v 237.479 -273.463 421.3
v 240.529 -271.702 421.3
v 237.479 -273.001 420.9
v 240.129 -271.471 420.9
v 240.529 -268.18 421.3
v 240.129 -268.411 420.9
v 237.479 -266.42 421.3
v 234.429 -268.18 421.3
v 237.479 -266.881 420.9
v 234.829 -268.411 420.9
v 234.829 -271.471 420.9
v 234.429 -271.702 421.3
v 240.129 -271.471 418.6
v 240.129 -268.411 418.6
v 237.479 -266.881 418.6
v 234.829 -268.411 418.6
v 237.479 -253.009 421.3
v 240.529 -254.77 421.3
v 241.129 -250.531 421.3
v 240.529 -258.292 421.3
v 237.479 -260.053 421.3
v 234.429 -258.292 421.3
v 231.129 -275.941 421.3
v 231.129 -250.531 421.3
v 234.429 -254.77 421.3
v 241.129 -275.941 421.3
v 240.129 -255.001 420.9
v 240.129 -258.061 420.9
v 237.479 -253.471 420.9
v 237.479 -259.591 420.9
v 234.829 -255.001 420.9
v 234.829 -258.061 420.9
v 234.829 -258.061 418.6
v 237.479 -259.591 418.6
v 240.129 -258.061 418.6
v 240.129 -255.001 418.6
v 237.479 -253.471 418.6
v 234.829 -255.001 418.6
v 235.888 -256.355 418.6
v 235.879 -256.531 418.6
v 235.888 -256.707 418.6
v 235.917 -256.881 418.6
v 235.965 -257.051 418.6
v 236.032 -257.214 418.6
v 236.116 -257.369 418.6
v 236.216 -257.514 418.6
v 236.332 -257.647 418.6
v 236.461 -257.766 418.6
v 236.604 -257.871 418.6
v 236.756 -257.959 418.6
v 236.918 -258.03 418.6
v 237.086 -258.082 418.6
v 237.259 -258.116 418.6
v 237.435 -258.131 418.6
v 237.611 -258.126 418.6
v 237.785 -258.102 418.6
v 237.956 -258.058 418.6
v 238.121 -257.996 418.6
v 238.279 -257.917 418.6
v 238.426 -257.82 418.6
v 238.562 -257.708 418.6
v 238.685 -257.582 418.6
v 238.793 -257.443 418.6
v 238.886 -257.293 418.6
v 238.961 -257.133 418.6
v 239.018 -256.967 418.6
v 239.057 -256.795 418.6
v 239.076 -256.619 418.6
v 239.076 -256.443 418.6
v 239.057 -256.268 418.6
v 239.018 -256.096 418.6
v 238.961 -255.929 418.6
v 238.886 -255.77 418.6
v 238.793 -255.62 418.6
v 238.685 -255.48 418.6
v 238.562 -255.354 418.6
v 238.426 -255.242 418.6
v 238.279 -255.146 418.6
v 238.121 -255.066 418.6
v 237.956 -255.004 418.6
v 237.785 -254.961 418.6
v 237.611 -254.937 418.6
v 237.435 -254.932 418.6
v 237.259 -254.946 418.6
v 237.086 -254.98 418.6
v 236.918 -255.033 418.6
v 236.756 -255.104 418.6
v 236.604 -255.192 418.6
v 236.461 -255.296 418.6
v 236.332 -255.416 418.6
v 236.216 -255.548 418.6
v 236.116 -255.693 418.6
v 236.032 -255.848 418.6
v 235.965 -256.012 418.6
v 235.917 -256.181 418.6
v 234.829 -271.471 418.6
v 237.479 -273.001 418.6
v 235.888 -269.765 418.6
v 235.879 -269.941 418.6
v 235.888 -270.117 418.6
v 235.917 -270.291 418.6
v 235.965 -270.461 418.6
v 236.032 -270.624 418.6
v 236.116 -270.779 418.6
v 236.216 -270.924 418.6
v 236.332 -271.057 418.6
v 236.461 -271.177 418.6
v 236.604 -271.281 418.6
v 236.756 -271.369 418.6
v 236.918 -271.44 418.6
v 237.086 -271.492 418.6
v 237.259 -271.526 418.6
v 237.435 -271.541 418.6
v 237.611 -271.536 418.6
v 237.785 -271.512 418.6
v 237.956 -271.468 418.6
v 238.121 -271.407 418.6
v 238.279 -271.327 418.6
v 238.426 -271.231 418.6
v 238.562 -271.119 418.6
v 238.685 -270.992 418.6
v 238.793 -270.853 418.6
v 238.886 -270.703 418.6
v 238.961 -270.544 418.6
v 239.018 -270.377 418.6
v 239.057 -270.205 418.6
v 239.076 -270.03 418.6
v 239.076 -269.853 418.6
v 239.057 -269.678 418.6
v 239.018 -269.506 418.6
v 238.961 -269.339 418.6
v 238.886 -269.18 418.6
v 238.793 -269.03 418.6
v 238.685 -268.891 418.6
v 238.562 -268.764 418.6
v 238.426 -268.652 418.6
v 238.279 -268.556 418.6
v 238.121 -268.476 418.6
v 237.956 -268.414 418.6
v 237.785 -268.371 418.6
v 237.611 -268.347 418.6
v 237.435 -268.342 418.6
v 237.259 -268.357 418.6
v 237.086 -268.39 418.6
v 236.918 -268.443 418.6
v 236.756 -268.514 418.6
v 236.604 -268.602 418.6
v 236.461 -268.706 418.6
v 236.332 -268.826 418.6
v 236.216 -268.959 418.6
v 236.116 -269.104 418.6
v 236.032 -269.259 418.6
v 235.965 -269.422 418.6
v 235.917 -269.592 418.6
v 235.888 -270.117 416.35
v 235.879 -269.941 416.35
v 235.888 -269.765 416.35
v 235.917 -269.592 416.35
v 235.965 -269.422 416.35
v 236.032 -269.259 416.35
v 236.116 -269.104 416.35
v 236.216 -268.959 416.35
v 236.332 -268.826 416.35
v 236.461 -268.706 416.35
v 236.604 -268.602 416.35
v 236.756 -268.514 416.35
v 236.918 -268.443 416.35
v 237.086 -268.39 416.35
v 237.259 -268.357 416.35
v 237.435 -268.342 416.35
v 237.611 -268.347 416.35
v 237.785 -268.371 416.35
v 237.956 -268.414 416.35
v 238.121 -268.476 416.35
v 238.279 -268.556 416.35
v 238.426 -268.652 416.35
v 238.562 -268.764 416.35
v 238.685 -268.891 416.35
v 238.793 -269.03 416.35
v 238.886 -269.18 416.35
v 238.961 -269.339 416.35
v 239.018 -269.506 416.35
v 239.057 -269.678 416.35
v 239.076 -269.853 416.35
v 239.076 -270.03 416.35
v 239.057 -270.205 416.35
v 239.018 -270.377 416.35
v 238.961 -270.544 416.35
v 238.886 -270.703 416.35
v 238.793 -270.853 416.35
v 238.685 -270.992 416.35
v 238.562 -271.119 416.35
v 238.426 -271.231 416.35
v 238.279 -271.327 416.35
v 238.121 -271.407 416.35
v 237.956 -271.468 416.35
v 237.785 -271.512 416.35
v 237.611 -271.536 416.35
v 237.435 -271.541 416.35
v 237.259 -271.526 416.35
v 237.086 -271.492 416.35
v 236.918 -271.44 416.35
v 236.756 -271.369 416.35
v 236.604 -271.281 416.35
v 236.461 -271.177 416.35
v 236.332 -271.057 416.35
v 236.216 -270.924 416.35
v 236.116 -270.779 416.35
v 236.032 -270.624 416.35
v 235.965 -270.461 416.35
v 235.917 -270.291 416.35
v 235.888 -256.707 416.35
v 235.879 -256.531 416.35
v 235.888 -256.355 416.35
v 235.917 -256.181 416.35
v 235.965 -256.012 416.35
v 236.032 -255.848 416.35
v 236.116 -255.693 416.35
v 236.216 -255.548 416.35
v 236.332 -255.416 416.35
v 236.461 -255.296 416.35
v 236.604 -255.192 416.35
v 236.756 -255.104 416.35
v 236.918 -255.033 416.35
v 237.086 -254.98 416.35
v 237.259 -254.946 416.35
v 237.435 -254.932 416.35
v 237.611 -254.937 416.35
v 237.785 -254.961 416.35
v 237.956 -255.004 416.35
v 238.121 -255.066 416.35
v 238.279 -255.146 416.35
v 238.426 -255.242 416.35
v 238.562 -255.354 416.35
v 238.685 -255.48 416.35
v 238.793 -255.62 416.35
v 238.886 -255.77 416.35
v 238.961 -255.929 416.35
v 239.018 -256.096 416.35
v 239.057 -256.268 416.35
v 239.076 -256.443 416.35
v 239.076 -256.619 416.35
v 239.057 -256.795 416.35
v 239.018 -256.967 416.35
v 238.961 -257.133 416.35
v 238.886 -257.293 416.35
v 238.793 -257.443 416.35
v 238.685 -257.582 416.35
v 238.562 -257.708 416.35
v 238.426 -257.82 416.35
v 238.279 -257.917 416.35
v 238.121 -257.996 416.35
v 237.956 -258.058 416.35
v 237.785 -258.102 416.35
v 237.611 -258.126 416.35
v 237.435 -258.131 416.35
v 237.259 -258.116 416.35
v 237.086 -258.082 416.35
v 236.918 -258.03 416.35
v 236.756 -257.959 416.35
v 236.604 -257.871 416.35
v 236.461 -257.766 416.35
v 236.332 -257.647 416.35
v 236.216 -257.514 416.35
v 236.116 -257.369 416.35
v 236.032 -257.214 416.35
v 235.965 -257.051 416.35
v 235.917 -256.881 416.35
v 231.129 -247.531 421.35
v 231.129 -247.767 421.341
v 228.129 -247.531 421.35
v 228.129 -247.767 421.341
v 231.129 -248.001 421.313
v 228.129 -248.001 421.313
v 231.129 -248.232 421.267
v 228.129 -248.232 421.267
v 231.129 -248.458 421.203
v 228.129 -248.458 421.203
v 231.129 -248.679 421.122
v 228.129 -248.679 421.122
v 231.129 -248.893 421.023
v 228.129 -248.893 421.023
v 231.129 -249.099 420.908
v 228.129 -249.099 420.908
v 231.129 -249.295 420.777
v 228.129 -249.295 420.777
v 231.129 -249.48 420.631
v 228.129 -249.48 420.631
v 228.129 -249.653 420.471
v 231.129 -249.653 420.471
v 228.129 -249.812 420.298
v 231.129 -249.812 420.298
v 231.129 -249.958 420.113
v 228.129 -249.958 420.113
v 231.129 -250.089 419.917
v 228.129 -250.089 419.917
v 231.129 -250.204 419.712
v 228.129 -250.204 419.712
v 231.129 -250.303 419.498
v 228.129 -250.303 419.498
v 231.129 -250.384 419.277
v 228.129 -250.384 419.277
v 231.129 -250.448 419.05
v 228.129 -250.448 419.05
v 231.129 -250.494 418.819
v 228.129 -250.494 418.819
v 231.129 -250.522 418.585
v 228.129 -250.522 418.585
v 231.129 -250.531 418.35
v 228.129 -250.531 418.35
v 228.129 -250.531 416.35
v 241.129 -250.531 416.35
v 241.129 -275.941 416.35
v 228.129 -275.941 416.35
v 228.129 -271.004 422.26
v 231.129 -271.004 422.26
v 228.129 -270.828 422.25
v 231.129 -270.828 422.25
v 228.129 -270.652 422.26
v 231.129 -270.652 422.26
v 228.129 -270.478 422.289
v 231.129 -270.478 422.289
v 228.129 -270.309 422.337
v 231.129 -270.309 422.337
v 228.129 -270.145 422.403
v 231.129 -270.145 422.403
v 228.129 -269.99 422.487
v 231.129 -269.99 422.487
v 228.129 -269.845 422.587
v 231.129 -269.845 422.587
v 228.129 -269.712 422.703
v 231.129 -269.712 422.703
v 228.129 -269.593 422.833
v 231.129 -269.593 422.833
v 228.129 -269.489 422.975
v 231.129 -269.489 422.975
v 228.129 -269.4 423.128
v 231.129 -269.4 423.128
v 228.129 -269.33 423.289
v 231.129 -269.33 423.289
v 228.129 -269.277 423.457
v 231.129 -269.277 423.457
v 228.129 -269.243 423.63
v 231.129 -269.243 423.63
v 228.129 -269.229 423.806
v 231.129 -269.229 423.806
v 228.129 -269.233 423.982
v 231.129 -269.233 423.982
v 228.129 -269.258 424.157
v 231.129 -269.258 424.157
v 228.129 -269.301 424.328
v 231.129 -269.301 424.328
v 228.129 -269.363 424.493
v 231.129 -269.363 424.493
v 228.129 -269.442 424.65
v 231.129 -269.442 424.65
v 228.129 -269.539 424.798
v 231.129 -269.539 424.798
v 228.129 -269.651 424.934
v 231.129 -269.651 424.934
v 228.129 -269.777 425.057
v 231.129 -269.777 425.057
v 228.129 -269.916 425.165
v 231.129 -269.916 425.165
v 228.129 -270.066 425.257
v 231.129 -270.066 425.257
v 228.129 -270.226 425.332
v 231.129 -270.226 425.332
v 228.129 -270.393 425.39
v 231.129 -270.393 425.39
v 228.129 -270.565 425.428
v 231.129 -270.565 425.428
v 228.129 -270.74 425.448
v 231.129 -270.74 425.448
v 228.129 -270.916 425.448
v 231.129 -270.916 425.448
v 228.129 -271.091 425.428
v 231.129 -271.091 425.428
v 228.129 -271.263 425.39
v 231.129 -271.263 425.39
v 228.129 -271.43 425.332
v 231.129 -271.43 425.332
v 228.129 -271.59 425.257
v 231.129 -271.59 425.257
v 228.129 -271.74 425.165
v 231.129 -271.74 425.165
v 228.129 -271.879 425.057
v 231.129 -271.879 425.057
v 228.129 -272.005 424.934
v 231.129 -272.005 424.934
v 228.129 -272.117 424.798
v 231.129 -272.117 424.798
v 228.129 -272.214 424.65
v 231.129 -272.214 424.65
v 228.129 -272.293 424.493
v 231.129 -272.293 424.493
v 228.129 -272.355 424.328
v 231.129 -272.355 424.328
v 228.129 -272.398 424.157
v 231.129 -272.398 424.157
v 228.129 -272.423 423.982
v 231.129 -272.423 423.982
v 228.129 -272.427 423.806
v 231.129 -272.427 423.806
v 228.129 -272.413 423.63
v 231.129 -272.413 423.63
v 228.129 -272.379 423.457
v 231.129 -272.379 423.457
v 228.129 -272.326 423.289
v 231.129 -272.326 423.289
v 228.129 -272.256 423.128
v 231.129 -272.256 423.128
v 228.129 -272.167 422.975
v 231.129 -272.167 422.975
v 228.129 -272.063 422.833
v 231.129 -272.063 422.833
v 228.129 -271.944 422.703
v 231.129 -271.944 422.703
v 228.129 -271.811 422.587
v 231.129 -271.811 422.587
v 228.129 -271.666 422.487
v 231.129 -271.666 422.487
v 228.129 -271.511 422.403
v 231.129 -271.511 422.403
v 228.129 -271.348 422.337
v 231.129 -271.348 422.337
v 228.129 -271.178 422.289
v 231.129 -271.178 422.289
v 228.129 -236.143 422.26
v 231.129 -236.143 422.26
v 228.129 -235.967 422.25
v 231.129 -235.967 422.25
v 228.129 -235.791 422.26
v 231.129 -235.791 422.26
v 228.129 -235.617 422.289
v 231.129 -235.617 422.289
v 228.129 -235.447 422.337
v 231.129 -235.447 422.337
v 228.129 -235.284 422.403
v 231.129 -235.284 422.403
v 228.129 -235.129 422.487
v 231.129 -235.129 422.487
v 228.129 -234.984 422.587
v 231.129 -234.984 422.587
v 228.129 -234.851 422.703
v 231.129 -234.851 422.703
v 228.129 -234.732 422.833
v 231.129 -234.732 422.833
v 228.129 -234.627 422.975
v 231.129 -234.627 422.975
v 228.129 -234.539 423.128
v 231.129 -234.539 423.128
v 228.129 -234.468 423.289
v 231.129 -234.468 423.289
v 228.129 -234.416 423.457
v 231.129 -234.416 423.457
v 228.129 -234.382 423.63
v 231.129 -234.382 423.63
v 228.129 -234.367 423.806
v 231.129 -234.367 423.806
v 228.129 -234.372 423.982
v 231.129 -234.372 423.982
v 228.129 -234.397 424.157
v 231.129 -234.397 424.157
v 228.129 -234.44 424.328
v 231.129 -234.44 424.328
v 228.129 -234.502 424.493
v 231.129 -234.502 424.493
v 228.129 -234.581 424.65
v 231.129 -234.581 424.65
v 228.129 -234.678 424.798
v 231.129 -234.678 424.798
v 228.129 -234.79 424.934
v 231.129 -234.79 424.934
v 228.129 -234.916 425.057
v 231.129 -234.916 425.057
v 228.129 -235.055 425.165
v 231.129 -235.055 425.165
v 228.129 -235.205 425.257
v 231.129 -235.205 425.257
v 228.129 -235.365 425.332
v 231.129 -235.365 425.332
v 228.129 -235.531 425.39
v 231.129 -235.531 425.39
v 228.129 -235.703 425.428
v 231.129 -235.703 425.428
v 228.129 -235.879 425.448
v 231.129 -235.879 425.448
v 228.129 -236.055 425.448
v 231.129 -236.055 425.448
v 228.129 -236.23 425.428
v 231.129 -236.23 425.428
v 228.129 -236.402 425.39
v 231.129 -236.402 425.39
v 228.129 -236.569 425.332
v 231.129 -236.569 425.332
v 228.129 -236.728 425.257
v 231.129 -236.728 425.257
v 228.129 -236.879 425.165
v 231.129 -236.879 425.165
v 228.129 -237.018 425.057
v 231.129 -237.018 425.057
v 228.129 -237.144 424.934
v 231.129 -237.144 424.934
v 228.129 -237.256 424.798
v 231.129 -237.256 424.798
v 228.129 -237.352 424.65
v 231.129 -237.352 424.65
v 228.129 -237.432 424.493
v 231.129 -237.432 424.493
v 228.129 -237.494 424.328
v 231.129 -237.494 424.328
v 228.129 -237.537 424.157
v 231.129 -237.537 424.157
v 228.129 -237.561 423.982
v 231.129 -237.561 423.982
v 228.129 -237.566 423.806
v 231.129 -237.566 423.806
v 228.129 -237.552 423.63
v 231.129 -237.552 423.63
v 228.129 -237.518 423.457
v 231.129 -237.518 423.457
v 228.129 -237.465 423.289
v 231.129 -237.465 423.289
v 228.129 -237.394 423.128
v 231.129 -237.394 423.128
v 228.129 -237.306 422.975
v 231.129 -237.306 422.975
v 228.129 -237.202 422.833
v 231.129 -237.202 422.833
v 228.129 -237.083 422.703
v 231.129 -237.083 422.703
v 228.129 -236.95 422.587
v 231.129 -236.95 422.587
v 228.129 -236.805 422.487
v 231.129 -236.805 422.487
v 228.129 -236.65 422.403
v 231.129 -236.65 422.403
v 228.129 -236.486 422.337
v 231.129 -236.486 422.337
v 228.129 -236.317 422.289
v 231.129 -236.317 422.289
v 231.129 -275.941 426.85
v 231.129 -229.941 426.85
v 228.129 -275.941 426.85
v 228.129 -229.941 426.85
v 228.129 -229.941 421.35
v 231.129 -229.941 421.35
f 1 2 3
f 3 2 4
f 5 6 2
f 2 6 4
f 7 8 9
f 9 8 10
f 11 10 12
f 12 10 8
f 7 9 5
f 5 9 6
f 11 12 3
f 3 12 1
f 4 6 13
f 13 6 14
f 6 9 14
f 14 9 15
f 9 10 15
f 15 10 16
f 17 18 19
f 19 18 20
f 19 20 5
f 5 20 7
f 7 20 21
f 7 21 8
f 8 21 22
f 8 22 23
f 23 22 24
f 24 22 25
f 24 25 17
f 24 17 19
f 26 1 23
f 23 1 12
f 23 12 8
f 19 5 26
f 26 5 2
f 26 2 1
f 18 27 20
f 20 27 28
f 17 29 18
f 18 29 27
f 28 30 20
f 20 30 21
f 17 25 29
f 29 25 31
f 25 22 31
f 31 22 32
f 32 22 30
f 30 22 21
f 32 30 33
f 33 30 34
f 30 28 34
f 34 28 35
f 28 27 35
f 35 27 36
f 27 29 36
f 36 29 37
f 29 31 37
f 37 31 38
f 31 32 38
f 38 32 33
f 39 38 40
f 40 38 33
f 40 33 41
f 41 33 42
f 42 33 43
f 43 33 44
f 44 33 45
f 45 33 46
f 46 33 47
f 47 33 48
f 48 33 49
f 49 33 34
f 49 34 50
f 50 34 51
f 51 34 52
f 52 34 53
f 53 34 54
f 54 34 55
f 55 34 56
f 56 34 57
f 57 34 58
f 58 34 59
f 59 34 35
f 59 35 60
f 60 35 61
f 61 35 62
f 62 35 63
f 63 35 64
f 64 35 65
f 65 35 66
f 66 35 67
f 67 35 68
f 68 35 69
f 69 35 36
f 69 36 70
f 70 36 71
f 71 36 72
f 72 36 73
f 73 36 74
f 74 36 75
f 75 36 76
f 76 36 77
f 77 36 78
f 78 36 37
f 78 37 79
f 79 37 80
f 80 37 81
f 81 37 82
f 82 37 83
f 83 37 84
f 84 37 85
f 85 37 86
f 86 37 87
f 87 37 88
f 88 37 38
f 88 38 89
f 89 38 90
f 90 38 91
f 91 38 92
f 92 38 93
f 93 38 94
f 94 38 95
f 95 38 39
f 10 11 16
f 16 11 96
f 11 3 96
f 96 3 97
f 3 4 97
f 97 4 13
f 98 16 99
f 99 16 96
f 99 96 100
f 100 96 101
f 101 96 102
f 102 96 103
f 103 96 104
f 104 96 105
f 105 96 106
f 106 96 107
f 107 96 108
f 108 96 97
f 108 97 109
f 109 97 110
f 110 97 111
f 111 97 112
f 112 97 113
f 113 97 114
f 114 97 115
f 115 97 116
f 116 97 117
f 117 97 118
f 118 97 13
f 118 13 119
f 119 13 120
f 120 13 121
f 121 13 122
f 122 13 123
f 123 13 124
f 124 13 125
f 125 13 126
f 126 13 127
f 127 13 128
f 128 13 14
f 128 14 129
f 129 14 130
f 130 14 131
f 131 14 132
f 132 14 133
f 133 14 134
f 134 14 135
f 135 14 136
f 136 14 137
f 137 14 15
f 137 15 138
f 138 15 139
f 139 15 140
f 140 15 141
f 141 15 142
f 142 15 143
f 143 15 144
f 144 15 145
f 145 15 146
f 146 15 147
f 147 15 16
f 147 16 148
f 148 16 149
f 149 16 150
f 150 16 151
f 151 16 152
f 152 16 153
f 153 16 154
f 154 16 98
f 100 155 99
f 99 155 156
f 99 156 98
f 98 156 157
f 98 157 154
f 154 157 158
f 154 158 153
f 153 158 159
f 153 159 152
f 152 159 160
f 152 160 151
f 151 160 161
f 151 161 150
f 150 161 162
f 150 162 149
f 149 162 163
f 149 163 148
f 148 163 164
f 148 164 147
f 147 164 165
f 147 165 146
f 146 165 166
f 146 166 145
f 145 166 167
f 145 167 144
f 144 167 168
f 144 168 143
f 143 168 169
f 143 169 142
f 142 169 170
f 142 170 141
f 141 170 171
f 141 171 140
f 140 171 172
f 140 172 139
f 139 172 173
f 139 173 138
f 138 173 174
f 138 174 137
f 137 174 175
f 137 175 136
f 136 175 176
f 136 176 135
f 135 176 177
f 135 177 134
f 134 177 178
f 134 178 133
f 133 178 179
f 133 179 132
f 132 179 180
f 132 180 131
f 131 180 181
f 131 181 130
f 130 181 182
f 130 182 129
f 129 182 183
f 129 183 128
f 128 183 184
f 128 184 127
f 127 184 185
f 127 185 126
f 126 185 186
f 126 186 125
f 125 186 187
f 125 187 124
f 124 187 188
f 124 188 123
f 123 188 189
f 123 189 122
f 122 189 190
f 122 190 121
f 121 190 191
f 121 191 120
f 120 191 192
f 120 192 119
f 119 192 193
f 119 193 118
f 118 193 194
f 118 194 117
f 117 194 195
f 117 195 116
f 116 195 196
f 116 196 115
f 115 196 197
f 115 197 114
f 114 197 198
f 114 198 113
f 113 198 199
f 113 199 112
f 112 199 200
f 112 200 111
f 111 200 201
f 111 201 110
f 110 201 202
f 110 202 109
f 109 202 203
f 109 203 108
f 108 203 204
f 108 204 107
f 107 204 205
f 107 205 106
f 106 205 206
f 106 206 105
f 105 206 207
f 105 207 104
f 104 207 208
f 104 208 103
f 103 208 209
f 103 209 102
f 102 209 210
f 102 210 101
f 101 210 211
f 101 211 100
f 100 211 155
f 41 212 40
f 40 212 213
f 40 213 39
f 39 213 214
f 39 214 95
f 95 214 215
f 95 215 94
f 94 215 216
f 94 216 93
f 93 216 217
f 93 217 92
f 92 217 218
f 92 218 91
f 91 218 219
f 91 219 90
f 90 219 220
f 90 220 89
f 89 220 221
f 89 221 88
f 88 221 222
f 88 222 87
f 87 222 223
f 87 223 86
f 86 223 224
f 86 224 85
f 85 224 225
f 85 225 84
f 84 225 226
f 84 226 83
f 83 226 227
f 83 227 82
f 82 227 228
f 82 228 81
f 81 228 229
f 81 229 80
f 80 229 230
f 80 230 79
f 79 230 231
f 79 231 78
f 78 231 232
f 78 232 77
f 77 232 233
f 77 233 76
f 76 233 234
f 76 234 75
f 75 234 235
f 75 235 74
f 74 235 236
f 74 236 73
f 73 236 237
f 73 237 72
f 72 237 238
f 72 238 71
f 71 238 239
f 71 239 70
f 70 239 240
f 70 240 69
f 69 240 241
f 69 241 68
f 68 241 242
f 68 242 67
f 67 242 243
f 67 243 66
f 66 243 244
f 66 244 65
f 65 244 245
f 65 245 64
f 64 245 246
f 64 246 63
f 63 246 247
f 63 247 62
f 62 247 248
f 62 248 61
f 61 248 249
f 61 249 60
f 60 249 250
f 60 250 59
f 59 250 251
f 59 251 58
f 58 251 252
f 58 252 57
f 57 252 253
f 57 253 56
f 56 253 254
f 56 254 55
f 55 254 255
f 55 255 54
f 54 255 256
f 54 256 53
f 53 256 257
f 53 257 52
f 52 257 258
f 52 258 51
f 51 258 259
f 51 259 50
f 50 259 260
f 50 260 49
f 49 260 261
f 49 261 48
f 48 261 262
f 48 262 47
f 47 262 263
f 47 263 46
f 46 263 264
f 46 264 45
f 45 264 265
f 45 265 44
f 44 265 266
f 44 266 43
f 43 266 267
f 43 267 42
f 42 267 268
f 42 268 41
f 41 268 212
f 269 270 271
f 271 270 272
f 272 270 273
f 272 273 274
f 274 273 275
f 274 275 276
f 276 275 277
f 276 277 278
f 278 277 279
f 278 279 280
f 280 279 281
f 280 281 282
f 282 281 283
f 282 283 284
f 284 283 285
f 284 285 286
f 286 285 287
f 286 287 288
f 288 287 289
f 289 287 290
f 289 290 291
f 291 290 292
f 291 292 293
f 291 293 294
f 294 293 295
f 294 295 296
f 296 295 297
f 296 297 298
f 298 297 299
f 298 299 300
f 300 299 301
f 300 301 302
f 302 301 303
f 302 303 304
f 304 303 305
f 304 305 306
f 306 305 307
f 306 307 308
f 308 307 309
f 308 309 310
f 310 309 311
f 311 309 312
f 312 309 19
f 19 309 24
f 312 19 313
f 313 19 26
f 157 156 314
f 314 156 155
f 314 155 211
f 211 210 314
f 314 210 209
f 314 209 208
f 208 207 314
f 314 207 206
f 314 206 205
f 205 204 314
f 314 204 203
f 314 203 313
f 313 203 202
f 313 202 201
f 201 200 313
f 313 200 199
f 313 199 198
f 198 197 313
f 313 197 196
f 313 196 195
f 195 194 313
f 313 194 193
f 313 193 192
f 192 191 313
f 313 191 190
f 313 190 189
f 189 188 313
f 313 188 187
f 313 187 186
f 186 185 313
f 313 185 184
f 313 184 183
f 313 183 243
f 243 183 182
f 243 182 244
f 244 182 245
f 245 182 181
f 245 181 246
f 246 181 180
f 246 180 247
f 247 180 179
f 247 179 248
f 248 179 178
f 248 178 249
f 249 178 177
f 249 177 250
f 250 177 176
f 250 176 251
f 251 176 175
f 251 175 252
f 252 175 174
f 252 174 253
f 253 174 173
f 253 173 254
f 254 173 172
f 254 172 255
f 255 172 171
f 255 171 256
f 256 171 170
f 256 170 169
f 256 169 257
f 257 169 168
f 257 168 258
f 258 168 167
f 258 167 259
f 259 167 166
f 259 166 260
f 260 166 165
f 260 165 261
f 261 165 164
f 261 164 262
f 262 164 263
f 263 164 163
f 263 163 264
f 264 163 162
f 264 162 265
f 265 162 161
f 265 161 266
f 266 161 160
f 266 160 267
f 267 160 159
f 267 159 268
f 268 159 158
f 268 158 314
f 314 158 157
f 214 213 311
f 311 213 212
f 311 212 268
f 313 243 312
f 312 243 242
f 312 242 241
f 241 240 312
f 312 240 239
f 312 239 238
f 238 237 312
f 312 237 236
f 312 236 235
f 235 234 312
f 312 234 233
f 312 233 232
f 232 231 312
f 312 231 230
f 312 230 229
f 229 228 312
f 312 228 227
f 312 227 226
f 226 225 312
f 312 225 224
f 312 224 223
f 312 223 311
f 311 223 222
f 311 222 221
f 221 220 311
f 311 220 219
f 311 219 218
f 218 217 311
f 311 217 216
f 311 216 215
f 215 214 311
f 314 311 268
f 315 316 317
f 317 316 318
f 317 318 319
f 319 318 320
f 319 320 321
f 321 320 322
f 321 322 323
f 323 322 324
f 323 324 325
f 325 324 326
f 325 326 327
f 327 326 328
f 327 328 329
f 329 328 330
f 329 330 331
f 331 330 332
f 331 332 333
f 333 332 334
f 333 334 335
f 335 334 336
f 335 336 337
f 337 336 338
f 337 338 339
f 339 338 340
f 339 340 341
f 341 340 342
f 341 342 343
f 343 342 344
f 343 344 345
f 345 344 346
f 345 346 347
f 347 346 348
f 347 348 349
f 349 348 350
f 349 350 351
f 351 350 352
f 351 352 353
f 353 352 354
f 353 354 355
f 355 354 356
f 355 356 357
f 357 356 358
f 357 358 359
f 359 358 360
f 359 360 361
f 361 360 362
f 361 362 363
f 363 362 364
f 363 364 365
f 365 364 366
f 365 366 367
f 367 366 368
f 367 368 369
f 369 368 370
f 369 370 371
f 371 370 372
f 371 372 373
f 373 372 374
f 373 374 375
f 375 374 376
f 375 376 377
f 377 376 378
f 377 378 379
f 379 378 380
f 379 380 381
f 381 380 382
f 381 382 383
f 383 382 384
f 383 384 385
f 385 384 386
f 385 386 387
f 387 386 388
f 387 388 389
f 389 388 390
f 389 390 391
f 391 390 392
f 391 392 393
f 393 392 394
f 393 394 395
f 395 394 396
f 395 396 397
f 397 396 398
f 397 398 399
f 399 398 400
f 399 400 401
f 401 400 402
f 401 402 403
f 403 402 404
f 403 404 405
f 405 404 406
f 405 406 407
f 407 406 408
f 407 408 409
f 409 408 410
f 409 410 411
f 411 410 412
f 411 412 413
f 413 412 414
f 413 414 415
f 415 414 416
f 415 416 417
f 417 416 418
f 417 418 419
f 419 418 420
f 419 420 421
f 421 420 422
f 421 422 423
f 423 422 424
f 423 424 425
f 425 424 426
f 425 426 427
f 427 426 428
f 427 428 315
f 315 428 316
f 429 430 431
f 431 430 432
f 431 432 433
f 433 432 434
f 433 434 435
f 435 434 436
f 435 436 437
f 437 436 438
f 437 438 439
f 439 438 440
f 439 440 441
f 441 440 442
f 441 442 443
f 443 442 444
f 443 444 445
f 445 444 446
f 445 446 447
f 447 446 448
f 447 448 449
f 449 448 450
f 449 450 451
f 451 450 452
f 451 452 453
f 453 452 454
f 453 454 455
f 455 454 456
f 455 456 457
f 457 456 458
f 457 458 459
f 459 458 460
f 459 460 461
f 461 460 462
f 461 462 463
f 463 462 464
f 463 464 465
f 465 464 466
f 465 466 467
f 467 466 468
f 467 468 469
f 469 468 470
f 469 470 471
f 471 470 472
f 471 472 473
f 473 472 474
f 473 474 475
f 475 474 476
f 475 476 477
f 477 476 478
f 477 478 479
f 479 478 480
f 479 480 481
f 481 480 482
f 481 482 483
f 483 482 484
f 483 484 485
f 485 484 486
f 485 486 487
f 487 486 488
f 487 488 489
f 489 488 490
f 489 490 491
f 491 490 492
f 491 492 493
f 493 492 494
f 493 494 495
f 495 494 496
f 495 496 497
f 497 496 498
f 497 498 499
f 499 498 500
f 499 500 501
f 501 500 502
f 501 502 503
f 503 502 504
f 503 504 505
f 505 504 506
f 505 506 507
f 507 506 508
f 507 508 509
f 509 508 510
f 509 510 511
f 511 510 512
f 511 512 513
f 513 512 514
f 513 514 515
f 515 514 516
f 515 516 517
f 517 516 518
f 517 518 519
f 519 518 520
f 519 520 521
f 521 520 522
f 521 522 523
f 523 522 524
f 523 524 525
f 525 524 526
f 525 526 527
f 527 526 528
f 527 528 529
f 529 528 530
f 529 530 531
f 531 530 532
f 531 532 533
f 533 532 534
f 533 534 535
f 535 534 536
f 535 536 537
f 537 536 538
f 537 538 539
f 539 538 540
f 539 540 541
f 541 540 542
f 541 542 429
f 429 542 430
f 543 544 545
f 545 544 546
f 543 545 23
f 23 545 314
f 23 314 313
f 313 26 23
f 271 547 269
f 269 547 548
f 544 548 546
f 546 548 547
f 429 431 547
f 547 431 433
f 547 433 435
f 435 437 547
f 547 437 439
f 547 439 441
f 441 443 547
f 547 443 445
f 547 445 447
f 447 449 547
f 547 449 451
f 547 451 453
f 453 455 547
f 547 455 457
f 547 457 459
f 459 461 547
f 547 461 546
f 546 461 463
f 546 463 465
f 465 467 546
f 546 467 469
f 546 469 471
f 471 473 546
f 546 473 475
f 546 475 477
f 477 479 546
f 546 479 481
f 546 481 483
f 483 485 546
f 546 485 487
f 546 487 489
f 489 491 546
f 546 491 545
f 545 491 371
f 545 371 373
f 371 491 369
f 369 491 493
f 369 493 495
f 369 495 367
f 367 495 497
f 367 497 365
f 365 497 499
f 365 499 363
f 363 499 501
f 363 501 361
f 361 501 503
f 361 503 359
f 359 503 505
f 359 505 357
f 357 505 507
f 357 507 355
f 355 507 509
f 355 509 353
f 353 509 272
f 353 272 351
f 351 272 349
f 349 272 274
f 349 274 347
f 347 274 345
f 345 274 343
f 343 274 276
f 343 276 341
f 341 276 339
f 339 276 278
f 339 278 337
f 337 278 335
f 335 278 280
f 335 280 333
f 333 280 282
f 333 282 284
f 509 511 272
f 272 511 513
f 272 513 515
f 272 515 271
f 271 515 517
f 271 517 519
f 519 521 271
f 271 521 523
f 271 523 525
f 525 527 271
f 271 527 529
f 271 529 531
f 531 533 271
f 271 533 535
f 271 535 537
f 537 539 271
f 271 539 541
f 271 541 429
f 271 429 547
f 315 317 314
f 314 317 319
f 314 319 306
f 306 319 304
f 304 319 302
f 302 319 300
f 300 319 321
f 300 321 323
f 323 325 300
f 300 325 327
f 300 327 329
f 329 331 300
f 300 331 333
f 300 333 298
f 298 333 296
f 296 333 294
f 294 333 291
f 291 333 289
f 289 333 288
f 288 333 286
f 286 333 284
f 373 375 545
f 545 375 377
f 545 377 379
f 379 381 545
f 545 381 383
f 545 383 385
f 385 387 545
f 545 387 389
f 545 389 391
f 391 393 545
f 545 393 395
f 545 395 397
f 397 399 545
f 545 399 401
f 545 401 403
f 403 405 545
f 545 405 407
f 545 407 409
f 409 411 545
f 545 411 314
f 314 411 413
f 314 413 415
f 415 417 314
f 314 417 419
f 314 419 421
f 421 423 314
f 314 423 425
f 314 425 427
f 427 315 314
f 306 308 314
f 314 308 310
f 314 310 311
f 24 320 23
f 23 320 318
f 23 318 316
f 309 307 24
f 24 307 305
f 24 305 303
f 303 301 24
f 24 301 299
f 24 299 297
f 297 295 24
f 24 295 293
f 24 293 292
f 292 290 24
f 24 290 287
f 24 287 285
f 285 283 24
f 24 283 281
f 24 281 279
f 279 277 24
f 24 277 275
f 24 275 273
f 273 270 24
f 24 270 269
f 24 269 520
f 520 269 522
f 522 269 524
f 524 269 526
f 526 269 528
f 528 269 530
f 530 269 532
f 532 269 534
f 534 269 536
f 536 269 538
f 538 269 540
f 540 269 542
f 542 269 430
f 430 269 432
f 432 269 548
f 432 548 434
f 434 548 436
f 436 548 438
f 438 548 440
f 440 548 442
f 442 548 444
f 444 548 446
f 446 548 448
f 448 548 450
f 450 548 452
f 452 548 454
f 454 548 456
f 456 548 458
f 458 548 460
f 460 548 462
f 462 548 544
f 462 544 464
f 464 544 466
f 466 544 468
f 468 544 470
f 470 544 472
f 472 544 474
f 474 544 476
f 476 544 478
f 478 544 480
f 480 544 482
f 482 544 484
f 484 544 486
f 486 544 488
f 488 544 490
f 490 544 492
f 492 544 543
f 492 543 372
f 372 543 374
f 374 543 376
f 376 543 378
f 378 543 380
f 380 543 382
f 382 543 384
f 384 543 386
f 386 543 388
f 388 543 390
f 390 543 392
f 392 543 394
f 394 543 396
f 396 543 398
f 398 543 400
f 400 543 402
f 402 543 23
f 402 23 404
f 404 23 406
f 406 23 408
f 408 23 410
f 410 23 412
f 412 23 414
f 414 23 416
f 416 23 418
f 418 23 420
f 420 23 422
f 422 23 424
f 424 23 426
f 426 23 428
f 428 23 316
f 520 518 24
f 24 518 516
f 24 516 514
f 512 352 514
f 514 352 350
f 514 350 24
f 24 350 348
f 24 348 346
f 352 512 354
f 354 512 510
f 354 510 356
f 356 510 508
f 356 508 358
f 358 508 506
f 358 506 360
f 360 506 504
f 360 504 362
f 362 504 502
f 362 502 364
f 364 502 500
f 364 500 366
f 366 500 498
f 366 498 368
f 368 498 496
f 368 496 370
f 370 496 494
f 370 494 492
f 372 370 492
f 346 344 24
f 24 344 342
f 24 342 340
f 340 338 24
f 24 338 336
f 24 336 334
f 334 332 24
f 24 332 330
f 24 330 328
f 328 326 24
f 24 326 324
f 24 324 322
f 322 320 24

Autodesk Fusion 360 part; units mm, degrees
sketch "Sketch1" plane through (231.1286, 0, 0) normal (-1, 0, 0) x (0, 0, 1)
  circle A0 centre (423.85, -235.9668) radius 1.5
  circle A1 centre (423.85, -270.828) radius 1.5
  line L0 (421.35, -229.9414) -> (421.35, -275.9414)
  line L1 (421.35, -275.9414) -> (426.85, -275.9414)
  line L2 (426.85, -275.9414) -> (426.85, -229.9414)
  line L3 (426.85, -229.9414) -> (421.35, -229.9414)
  circle A2 centre (423.85, -235.9668) radius 4
  dimension "d22" = 8
extrude "Extrude1" add sketch "Sketch1" along normal blind 4 contours L0 L2 L3 A2 | L0 L2 A2 | L0 L1 L2 A2
sketch "Sketch2" plane through (0, 0, 421.35) normal (0, 0, -1) x (-1, 0, 0)
  line L0 (-231.1286, -229.9414) -> (-231.1286, -275.9414)
  line L1 (-231.1286, -275.9414) -> (-227.1286, -275.9414)
  line L2 (-227.1286, -275.9414) -> (-227.1286, -229.9414)
  line L3 (-227.1286, -229.9414) -> (-231.1286, -229.9414)
  line L4 (-233.6257, -250.5312) -> (-240.5303, -250.5312)
  line L5 (-233.6257, -275.9414) -> (-240.6765, -275.9414)
  line L6 (-231.1286, -275.9414) -> (-227.1286, -275.9414)
  line L7 (-227.1286, -275.9414) -> (-227.1286, -250.5312)
  line L8 (-227.1286, -250.5312) -> (-231.1286, -250.5312)
  line L9 (-231.1286, -250.5312) -> (-231.1286, -275.9414)
extrude "Extrude2" add sketch "Sketch2" along normal blind 5 contours L0 L1 L2 L6 L7 L8 L9
sketch "Sketch3" plane through (231.1286, 0, 0) normal (1, 0, 0) x (0, 0, -1)
  circle A0 centre (-423.85, -235.9668) radius 1.5
  circle A1 centre (-423.85, -270.828) radius 1.5
  line L0 (-421.35, -229.9414) -> (-426.85, -229.9414)
  line L1 (-426.85, -229.9414) -> (-426.85, -275.9414)
  line L2 (-426.85, -275.9414) -> (-416.35, -275.9414)
  line L3 (-416.35, -275.9414) -> (-416.35, -250.5312)
  line L4 (-416.35, -250.5312) -> (-421.35, -250.5312)
  line L5 (-421.35, -250.5312) -> (-421.35, -229.9414)
  line L6 (-421.35, -275.9414) -> (-421.35, -229.9414)
extrude "Extrude3" add sketch "Sketch3" along normal blind 10 contours L2 L3 L4 L6
fillet "Fillet1" radius 3 1 edges at (229.1286, -250.5312, 421.35)
sketch "Sketch4" plane through (0, 0, 421.35) normal (0, 0, 1) x (1, 0, 0)
  line L0 (231.1286, -250.5312) -> (231.1286, -275.9414)
  line L1 (231.1286, -275.9414) -> (241.1286, -275.9414)
  line L2 (241.1286, -275.9414) -> (241.1286, -250.5312)
  line L3 (241.1286, -250.5312) -> (231.1286, -250.5312)
  circle A0 centre (237.4786, -256.5312) radius 1.6
  circle A1 centre (237.4786, -269.9414) radius 1.6
hole "Hole1" at (237.4786, -269.9414, 421.35) at (237.4786, -256.5312, 421.35) direction (0, 0, -1) diameter 3.2 depth 5 tip angle 180
move_face "OffsetFaces1" offset -0.1 1 faces at (228.462, -271.3411, 425.2595)
move_face "OffsetFaces2" offset -0.1 1 faces at (228.462, -237.0915, 422.8575)
move_face "OffsetFaces3" offset -0.05 1 faces at (232.7488, -265.2765, 421.35)
move_face "OffsetFaces4" offset -1 1 faces at (227.1286, -265.5355, 418.3695)
sketch "Sketch5" plane through (0, 0, 421.3) normal (0, 0, 1) x (1, 0, 0)
  circle A0 centre (237.4786, -269.9414) radius 1.6
  circle A1 centre (237.4786, -256.5312) radius 1.6
  line L0 (231.1286, -250.5312) -> (231.1286, -275.9414)
  line L1 (231.1286, -275.9414) -> (241.1286, -275.9414)
  line L2 (241.1286, -275.9414) -> (241.1286, -250.5312)
  line L3 (241.1286, -250.5312) -> (231.1286, -250.5312)
  circle A2 centre (237.4786, -256.5312) radius 1.6
  circle A3 centre (237.4786, -269.9414) radius 1.6
  line L4 (237.4786, -256.5312) -> (237.4786, -269.9414) construction
  line L5 (237.4786, -259.5912) -> (240.1287, -258.0612)
  line L6 (240.1287, -258.0612) -> (240.1287, -255.0012)
  line L7 (240.1287, -255.0012) -> (237.4786, -253.4712)
  line L8 (237.4786, -253.4712) -> (234.8286, -255.0012)
  line L9 (234.8286, -255.0012) -> (234.8286, -258.0612)
  line L10 (234.8286, -258.0612) -> (237.4786, -259.5912)
  line L11 (237.4786, -266.8814) -> (234.8286, -268.4114)
  line L12 (234.8286, -268.4114) -> (234.8286, -271.4714)
  line L13 (234.8286, -271.4714) -> (237.4786, -273.0014)
  line L14 (237.4786, -273.0014) -> (240.1287, -271.4714)
  line L15 (240.1287, -271.4714) -> (240.1287, -268.4114)
  line L16 (240.1287, -268.4114) -> (237.4786, -266.8814)
  dimension "d37" = 3.06
  dimension "d38" = 3.06
extrude "Extrude4" cut sketch "Sketch5" against normal blind 2.7 contours L5 L6 L7 L8 L9 L10 | L11 L12 L13 L14 L15 L16
chamfer "Chamfer1" distance 0.4 angle 45 12 edges at (234.8286, -256.5312, 421.3) (236.1536, -254.2362, 421.3) (238.8037, -254.2362, 421.3) (240.1287, -256.5312, 421.3) (238.8037, -258.8262, 421.3) (236.1536, -258.8262, 421.3) (236.1536, -267.6464, 421.3) (234.8286, -269.9414, 421.3) (236.1536, -272.2364, 421.3) (238.8037, -272.2364, 421.3) (240.1287, -269.9414, 421.3) (238.8037, -267.6464, 421.3)
